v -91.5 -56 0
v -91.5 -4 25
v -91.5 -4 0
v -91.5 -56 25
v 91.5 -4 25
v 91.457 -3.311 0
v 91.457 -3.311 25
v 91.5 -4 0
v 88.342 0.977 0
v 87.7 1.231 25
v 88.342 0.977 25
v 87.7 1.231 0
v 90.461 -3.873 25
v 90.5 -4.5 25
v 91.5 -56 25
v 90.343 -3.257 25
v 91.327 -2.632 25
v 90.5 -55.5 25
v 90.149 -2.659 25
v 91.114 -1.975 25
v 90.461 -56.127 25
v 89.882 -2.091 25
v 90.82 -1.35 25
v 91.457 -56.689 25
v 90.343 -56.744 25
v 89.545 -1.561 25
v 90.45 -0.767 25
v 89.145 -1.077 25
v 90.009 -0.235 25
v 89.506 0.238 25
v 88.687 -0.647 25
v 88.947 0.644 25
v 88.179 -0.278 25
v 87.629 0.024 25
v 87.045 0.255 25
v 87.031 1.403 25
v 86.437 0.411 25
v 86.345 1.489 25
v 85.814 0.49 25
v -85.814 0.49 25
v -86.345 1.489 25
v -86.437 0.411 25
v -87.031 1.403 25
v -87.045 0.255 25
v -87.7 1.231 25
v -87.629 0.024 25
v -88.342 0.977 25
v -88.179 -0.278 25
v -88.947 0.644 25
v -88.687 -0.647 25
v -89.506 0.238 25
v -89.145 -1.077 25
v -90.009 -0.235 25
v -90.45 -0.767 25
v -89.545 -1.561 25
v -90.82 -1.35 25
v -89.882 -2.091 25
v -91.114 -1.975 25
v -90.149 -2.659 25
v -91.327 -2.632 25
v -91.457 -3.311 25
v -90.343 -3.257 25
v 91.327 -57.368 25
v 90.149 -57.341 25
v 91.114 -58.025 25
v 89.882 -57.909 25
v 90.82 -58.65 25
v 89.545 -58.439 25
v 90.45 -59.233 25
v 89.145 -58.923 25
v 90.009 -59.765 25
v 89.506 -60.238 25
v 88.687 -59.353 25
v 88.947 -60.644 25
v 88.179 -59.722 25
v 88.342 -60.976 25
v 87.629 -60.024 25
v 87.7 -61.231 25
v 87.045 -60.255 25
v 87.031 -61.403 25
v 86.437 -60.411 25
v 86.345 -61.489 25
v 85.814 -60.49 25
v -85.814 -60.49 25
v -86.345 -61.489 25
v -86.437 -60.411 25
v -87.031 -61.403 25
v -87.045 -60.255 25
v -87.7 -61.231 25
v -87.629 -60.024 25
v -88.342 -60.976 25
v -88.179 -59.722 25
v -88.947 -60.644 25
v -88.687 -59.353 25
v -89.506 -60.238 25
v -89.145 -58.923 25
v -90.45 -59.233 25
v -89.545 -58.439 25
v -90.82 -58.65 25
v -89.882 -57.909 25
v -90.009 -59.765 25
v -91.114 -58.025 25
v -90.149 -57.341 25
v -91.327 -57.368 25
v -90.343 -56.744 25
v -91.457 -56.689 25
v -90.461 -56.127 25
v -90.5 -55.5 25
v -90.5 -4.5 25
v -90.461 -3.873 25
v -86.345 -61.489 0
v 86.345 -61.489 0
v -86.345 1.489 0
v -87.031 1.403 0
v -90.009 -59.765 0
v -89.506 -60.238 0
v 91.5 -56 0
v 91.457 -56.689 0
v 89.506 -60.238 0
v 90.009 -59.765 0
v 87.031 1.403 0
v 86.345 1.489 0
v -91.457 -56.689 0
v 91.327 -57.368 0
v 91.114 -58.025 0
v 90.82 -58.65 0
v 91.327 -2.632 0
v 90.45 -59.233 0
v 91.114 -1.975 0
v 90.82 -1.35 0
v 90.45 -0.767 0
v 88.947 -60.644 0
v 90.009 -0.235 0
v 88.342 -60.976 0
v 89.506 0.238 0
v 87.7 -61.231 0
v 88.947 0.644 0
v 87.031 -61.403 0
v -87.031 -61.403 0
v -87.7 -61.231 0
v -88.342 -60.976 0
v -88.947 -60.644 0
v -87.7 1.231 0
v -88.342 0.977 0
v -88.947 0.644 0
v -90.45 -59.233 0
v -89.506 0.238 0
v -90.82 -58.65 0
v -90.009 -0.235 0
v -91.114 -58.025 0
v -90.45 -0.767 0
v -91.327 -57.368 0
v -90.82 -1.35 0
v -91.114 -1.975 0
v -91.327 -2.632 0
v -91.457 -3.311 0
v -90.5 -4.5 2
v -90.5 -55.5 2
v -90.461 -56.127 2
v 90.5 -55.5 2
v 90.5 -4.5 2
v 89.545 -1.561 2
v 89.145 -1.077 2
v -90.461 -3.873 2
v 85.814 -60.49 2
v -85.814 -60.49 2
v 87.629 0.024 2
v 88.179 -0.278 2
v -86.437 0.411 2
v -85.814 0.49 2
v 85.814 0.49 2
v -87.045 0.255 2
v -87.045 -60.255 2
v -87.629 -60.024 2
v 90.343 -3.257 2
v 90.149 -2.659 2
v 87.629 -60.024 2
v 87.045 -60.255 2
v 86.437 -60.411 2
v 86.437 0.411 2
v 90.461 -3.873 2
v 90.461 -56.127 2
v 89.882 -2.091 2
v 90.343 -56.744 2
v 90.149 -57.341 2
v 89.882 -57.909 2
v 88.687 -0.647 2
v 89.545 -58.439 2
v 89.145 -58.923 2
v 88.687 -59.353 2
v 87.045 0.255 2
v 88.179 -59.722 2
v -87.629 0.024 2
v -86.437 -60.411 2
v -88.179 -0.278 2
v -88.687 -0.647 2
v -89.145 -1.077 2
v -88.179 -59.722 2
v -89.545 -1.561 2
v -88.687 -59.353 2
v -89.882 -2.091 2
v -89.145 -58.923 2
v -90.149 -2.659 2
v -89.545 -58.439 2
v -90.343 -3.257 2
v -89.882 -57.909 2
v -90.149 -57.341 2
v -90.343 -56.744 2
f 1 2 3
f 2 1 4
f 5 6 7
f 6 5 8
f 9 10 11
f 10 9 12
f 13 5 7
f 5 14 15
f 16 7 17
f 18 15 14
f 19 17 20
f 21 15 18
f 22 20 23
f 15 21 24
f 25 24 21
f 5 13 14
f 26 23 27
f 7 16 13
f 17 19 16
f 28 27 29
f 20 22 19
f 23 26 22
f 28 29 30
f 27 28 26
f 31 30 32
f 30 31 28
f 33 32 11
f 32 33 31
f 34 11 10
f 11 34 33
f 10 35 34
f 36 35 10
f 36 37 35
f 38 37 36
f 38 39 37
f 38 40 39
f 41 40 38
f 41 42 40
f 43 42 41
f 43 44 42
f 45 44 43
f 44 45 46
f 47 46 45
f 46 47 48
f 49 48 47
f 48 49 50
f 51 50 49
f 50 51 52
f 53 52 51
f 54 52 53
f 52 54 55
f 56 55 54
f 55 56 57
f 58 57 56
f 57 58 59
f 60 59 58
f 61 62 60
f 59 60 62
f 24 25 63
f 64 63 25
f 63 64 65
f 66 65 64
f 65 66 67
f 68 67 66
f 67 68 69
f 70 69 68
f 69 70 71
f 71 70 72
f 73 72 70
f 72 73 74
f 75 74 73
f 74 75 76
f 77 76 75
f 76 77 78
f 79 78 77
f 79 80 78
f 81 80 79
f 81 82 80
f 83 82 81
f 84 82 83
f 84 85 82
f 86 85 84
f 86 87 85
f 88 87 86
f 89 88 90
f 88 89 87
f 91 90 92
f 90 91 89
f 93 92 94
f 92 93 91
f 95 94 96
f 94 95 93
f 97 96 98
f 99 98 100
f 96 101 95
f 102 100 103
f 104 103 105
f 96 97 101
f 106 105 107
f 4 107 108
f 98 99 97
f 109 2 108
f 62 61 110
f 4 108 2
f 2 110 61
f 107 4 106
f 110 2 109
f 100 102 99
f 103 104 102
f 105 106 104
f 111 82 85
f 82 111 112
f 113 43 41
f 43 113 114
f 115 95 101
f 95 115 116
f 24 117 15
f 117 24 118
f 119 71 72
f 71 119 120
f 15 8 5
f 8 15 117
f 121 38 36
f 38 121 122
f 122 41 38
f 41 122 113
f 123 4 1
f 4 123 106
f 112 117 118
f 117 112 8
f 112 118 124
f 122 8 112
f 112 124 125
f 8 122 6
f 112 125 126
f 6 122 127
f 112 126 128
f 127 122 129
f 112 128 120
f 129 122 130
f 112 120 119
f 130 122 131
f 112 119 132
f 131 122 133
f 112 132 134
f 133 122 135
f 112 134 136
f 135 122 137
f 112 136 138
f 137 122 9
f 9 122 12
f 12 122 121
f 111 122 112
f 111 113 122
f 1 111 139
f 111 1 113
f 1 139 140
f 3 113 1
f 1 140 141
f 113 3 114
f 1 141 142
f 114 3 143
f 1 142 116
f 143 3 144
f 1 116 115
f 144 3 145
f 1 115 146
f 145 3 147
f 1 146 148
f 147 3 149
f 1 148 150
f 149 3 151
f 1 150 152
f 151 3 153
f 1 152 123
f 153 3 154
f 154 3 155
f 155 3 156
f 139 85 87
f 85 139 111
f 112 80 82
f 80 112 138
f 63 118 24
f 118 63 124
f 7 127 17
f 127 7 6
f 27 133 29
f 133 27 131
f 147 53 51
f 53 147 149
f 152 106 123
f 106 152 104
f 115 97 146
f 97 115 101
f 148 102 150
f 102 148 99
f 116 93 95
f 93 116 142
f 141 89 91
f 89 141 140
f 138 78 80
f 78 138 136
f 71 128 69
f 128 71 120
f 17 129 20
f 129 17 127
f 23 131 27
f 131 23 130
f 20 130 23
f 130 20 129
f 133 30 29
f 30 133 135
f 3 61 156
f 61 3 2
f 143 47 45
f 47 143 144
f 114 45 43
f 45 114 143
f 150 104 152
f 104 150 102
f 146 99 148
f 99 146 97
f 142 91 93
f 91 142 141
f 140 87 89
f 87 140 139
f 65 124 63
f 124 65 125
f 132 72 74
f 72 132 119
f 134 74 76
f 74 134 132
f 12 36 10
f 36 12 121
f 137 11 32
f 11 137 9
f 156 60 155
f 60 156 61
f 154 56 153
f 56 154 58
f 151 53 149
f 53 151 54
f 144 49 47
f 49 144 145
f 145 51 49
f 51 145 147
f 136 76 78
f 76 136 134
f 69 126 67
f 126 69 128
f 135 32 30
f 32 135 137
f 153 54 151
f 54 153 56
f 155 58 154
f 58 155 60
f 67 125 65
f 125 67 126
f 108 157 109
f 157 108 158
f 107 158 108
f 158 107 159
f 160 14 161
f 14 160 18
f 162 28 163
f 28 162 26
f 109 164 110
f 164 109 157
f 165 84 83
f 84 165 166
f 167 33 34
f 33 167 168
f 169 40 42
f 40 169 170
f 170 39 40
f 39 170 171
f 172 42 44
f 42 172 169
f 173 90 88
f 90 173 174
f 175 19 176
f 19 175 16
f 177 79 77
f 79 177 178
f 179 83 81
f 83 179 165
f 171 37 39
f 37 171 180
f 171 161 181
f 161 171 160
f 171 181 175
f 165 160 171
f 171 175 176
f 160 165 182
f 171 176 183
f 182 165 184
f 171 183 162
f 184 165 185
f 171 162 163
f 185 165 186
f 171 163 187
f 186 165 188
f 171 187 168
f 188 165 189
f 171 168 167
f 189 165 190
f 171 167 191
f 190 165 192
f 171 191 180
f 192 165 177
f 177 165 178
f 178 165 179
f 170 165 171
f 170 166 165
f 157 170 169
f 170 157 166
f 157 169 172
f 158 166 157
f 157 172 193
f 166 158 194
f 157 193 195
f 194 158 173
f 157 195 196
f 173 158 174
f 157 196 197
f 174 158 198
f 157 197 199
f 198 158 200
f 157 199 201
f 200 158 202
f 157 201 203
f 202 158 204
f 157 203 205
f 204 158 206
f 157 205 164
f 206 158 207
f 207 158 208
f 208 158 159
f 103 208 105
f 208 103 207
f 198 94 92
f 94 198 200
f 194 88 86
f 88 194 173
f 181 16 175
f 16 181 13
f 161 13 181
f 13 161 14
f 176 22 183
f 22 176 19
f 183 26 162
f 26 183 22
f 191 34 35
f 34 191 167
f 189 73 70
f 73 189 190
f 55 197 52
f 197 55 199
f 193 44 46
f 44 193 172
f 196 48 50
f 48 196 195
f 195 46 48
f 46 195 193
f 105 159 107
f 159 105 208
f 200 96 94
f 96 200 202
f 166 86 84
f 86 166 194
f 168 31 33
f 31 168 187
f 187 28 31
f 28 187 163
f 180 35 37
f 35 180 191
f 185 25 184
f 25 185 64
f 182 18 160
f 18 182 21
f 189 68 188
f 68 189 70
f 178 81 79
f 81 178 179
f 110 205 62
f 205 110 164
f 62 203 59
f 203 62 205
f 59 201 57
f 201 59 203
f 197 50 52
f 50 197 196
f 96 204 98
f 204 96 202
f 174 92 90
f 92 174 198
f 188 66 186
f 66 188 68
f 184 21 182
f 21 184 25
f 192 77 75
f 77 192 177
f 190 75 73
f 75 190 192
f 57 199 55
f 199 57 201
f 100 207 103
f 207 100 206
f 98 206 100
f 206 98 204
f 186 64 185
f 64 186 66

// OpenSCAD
$fn = 50;


difference() {
	union() {
		translate(v = [0, -30.0000000000, 0]) {
			hull() {
				translate(v = [-86.0000000000, 26.0000000000, 0]) {
					cylinder(h = 25, r = 5.5000000000);
				}
				translate(v = [86.0000000000, 26.0000000000, 0]) {
					cylinder(h = 25, r = 5.5000000000);
				}
				translate(v = [-86.0000000000, -26.0000000000, 0]) {
					cylinder(h = 25, r = 5.5000000000);
				}
				translate(v = [86.0000000000, -26.0000000000, 0]) {
					cylinder(h = 25, r = 5.5000000000);
				}
			}
		}
	}
	union() {
		translate(v = [0, -30.0000000000, 2]) {
			hull() {
				translate(v = [-85.5000000000, 25.5000000000, 0]) {
					cylinder(h = 50, r = 5);
				}
				translate(v = [85.5000000000, 25.5000000000, 0]) {
					cylinder(h = 50, r = 5);
				}
				translate(v = [-85.5000000000, -25.5000000000, 0]) {
					cylinder(h = 50, r = 5);
				}
				translate(v = [85.5000000000, -25.5000000000, 0]) {
					cylinder(h = 50, r = 5);
				}
			}
		}
	}
}
